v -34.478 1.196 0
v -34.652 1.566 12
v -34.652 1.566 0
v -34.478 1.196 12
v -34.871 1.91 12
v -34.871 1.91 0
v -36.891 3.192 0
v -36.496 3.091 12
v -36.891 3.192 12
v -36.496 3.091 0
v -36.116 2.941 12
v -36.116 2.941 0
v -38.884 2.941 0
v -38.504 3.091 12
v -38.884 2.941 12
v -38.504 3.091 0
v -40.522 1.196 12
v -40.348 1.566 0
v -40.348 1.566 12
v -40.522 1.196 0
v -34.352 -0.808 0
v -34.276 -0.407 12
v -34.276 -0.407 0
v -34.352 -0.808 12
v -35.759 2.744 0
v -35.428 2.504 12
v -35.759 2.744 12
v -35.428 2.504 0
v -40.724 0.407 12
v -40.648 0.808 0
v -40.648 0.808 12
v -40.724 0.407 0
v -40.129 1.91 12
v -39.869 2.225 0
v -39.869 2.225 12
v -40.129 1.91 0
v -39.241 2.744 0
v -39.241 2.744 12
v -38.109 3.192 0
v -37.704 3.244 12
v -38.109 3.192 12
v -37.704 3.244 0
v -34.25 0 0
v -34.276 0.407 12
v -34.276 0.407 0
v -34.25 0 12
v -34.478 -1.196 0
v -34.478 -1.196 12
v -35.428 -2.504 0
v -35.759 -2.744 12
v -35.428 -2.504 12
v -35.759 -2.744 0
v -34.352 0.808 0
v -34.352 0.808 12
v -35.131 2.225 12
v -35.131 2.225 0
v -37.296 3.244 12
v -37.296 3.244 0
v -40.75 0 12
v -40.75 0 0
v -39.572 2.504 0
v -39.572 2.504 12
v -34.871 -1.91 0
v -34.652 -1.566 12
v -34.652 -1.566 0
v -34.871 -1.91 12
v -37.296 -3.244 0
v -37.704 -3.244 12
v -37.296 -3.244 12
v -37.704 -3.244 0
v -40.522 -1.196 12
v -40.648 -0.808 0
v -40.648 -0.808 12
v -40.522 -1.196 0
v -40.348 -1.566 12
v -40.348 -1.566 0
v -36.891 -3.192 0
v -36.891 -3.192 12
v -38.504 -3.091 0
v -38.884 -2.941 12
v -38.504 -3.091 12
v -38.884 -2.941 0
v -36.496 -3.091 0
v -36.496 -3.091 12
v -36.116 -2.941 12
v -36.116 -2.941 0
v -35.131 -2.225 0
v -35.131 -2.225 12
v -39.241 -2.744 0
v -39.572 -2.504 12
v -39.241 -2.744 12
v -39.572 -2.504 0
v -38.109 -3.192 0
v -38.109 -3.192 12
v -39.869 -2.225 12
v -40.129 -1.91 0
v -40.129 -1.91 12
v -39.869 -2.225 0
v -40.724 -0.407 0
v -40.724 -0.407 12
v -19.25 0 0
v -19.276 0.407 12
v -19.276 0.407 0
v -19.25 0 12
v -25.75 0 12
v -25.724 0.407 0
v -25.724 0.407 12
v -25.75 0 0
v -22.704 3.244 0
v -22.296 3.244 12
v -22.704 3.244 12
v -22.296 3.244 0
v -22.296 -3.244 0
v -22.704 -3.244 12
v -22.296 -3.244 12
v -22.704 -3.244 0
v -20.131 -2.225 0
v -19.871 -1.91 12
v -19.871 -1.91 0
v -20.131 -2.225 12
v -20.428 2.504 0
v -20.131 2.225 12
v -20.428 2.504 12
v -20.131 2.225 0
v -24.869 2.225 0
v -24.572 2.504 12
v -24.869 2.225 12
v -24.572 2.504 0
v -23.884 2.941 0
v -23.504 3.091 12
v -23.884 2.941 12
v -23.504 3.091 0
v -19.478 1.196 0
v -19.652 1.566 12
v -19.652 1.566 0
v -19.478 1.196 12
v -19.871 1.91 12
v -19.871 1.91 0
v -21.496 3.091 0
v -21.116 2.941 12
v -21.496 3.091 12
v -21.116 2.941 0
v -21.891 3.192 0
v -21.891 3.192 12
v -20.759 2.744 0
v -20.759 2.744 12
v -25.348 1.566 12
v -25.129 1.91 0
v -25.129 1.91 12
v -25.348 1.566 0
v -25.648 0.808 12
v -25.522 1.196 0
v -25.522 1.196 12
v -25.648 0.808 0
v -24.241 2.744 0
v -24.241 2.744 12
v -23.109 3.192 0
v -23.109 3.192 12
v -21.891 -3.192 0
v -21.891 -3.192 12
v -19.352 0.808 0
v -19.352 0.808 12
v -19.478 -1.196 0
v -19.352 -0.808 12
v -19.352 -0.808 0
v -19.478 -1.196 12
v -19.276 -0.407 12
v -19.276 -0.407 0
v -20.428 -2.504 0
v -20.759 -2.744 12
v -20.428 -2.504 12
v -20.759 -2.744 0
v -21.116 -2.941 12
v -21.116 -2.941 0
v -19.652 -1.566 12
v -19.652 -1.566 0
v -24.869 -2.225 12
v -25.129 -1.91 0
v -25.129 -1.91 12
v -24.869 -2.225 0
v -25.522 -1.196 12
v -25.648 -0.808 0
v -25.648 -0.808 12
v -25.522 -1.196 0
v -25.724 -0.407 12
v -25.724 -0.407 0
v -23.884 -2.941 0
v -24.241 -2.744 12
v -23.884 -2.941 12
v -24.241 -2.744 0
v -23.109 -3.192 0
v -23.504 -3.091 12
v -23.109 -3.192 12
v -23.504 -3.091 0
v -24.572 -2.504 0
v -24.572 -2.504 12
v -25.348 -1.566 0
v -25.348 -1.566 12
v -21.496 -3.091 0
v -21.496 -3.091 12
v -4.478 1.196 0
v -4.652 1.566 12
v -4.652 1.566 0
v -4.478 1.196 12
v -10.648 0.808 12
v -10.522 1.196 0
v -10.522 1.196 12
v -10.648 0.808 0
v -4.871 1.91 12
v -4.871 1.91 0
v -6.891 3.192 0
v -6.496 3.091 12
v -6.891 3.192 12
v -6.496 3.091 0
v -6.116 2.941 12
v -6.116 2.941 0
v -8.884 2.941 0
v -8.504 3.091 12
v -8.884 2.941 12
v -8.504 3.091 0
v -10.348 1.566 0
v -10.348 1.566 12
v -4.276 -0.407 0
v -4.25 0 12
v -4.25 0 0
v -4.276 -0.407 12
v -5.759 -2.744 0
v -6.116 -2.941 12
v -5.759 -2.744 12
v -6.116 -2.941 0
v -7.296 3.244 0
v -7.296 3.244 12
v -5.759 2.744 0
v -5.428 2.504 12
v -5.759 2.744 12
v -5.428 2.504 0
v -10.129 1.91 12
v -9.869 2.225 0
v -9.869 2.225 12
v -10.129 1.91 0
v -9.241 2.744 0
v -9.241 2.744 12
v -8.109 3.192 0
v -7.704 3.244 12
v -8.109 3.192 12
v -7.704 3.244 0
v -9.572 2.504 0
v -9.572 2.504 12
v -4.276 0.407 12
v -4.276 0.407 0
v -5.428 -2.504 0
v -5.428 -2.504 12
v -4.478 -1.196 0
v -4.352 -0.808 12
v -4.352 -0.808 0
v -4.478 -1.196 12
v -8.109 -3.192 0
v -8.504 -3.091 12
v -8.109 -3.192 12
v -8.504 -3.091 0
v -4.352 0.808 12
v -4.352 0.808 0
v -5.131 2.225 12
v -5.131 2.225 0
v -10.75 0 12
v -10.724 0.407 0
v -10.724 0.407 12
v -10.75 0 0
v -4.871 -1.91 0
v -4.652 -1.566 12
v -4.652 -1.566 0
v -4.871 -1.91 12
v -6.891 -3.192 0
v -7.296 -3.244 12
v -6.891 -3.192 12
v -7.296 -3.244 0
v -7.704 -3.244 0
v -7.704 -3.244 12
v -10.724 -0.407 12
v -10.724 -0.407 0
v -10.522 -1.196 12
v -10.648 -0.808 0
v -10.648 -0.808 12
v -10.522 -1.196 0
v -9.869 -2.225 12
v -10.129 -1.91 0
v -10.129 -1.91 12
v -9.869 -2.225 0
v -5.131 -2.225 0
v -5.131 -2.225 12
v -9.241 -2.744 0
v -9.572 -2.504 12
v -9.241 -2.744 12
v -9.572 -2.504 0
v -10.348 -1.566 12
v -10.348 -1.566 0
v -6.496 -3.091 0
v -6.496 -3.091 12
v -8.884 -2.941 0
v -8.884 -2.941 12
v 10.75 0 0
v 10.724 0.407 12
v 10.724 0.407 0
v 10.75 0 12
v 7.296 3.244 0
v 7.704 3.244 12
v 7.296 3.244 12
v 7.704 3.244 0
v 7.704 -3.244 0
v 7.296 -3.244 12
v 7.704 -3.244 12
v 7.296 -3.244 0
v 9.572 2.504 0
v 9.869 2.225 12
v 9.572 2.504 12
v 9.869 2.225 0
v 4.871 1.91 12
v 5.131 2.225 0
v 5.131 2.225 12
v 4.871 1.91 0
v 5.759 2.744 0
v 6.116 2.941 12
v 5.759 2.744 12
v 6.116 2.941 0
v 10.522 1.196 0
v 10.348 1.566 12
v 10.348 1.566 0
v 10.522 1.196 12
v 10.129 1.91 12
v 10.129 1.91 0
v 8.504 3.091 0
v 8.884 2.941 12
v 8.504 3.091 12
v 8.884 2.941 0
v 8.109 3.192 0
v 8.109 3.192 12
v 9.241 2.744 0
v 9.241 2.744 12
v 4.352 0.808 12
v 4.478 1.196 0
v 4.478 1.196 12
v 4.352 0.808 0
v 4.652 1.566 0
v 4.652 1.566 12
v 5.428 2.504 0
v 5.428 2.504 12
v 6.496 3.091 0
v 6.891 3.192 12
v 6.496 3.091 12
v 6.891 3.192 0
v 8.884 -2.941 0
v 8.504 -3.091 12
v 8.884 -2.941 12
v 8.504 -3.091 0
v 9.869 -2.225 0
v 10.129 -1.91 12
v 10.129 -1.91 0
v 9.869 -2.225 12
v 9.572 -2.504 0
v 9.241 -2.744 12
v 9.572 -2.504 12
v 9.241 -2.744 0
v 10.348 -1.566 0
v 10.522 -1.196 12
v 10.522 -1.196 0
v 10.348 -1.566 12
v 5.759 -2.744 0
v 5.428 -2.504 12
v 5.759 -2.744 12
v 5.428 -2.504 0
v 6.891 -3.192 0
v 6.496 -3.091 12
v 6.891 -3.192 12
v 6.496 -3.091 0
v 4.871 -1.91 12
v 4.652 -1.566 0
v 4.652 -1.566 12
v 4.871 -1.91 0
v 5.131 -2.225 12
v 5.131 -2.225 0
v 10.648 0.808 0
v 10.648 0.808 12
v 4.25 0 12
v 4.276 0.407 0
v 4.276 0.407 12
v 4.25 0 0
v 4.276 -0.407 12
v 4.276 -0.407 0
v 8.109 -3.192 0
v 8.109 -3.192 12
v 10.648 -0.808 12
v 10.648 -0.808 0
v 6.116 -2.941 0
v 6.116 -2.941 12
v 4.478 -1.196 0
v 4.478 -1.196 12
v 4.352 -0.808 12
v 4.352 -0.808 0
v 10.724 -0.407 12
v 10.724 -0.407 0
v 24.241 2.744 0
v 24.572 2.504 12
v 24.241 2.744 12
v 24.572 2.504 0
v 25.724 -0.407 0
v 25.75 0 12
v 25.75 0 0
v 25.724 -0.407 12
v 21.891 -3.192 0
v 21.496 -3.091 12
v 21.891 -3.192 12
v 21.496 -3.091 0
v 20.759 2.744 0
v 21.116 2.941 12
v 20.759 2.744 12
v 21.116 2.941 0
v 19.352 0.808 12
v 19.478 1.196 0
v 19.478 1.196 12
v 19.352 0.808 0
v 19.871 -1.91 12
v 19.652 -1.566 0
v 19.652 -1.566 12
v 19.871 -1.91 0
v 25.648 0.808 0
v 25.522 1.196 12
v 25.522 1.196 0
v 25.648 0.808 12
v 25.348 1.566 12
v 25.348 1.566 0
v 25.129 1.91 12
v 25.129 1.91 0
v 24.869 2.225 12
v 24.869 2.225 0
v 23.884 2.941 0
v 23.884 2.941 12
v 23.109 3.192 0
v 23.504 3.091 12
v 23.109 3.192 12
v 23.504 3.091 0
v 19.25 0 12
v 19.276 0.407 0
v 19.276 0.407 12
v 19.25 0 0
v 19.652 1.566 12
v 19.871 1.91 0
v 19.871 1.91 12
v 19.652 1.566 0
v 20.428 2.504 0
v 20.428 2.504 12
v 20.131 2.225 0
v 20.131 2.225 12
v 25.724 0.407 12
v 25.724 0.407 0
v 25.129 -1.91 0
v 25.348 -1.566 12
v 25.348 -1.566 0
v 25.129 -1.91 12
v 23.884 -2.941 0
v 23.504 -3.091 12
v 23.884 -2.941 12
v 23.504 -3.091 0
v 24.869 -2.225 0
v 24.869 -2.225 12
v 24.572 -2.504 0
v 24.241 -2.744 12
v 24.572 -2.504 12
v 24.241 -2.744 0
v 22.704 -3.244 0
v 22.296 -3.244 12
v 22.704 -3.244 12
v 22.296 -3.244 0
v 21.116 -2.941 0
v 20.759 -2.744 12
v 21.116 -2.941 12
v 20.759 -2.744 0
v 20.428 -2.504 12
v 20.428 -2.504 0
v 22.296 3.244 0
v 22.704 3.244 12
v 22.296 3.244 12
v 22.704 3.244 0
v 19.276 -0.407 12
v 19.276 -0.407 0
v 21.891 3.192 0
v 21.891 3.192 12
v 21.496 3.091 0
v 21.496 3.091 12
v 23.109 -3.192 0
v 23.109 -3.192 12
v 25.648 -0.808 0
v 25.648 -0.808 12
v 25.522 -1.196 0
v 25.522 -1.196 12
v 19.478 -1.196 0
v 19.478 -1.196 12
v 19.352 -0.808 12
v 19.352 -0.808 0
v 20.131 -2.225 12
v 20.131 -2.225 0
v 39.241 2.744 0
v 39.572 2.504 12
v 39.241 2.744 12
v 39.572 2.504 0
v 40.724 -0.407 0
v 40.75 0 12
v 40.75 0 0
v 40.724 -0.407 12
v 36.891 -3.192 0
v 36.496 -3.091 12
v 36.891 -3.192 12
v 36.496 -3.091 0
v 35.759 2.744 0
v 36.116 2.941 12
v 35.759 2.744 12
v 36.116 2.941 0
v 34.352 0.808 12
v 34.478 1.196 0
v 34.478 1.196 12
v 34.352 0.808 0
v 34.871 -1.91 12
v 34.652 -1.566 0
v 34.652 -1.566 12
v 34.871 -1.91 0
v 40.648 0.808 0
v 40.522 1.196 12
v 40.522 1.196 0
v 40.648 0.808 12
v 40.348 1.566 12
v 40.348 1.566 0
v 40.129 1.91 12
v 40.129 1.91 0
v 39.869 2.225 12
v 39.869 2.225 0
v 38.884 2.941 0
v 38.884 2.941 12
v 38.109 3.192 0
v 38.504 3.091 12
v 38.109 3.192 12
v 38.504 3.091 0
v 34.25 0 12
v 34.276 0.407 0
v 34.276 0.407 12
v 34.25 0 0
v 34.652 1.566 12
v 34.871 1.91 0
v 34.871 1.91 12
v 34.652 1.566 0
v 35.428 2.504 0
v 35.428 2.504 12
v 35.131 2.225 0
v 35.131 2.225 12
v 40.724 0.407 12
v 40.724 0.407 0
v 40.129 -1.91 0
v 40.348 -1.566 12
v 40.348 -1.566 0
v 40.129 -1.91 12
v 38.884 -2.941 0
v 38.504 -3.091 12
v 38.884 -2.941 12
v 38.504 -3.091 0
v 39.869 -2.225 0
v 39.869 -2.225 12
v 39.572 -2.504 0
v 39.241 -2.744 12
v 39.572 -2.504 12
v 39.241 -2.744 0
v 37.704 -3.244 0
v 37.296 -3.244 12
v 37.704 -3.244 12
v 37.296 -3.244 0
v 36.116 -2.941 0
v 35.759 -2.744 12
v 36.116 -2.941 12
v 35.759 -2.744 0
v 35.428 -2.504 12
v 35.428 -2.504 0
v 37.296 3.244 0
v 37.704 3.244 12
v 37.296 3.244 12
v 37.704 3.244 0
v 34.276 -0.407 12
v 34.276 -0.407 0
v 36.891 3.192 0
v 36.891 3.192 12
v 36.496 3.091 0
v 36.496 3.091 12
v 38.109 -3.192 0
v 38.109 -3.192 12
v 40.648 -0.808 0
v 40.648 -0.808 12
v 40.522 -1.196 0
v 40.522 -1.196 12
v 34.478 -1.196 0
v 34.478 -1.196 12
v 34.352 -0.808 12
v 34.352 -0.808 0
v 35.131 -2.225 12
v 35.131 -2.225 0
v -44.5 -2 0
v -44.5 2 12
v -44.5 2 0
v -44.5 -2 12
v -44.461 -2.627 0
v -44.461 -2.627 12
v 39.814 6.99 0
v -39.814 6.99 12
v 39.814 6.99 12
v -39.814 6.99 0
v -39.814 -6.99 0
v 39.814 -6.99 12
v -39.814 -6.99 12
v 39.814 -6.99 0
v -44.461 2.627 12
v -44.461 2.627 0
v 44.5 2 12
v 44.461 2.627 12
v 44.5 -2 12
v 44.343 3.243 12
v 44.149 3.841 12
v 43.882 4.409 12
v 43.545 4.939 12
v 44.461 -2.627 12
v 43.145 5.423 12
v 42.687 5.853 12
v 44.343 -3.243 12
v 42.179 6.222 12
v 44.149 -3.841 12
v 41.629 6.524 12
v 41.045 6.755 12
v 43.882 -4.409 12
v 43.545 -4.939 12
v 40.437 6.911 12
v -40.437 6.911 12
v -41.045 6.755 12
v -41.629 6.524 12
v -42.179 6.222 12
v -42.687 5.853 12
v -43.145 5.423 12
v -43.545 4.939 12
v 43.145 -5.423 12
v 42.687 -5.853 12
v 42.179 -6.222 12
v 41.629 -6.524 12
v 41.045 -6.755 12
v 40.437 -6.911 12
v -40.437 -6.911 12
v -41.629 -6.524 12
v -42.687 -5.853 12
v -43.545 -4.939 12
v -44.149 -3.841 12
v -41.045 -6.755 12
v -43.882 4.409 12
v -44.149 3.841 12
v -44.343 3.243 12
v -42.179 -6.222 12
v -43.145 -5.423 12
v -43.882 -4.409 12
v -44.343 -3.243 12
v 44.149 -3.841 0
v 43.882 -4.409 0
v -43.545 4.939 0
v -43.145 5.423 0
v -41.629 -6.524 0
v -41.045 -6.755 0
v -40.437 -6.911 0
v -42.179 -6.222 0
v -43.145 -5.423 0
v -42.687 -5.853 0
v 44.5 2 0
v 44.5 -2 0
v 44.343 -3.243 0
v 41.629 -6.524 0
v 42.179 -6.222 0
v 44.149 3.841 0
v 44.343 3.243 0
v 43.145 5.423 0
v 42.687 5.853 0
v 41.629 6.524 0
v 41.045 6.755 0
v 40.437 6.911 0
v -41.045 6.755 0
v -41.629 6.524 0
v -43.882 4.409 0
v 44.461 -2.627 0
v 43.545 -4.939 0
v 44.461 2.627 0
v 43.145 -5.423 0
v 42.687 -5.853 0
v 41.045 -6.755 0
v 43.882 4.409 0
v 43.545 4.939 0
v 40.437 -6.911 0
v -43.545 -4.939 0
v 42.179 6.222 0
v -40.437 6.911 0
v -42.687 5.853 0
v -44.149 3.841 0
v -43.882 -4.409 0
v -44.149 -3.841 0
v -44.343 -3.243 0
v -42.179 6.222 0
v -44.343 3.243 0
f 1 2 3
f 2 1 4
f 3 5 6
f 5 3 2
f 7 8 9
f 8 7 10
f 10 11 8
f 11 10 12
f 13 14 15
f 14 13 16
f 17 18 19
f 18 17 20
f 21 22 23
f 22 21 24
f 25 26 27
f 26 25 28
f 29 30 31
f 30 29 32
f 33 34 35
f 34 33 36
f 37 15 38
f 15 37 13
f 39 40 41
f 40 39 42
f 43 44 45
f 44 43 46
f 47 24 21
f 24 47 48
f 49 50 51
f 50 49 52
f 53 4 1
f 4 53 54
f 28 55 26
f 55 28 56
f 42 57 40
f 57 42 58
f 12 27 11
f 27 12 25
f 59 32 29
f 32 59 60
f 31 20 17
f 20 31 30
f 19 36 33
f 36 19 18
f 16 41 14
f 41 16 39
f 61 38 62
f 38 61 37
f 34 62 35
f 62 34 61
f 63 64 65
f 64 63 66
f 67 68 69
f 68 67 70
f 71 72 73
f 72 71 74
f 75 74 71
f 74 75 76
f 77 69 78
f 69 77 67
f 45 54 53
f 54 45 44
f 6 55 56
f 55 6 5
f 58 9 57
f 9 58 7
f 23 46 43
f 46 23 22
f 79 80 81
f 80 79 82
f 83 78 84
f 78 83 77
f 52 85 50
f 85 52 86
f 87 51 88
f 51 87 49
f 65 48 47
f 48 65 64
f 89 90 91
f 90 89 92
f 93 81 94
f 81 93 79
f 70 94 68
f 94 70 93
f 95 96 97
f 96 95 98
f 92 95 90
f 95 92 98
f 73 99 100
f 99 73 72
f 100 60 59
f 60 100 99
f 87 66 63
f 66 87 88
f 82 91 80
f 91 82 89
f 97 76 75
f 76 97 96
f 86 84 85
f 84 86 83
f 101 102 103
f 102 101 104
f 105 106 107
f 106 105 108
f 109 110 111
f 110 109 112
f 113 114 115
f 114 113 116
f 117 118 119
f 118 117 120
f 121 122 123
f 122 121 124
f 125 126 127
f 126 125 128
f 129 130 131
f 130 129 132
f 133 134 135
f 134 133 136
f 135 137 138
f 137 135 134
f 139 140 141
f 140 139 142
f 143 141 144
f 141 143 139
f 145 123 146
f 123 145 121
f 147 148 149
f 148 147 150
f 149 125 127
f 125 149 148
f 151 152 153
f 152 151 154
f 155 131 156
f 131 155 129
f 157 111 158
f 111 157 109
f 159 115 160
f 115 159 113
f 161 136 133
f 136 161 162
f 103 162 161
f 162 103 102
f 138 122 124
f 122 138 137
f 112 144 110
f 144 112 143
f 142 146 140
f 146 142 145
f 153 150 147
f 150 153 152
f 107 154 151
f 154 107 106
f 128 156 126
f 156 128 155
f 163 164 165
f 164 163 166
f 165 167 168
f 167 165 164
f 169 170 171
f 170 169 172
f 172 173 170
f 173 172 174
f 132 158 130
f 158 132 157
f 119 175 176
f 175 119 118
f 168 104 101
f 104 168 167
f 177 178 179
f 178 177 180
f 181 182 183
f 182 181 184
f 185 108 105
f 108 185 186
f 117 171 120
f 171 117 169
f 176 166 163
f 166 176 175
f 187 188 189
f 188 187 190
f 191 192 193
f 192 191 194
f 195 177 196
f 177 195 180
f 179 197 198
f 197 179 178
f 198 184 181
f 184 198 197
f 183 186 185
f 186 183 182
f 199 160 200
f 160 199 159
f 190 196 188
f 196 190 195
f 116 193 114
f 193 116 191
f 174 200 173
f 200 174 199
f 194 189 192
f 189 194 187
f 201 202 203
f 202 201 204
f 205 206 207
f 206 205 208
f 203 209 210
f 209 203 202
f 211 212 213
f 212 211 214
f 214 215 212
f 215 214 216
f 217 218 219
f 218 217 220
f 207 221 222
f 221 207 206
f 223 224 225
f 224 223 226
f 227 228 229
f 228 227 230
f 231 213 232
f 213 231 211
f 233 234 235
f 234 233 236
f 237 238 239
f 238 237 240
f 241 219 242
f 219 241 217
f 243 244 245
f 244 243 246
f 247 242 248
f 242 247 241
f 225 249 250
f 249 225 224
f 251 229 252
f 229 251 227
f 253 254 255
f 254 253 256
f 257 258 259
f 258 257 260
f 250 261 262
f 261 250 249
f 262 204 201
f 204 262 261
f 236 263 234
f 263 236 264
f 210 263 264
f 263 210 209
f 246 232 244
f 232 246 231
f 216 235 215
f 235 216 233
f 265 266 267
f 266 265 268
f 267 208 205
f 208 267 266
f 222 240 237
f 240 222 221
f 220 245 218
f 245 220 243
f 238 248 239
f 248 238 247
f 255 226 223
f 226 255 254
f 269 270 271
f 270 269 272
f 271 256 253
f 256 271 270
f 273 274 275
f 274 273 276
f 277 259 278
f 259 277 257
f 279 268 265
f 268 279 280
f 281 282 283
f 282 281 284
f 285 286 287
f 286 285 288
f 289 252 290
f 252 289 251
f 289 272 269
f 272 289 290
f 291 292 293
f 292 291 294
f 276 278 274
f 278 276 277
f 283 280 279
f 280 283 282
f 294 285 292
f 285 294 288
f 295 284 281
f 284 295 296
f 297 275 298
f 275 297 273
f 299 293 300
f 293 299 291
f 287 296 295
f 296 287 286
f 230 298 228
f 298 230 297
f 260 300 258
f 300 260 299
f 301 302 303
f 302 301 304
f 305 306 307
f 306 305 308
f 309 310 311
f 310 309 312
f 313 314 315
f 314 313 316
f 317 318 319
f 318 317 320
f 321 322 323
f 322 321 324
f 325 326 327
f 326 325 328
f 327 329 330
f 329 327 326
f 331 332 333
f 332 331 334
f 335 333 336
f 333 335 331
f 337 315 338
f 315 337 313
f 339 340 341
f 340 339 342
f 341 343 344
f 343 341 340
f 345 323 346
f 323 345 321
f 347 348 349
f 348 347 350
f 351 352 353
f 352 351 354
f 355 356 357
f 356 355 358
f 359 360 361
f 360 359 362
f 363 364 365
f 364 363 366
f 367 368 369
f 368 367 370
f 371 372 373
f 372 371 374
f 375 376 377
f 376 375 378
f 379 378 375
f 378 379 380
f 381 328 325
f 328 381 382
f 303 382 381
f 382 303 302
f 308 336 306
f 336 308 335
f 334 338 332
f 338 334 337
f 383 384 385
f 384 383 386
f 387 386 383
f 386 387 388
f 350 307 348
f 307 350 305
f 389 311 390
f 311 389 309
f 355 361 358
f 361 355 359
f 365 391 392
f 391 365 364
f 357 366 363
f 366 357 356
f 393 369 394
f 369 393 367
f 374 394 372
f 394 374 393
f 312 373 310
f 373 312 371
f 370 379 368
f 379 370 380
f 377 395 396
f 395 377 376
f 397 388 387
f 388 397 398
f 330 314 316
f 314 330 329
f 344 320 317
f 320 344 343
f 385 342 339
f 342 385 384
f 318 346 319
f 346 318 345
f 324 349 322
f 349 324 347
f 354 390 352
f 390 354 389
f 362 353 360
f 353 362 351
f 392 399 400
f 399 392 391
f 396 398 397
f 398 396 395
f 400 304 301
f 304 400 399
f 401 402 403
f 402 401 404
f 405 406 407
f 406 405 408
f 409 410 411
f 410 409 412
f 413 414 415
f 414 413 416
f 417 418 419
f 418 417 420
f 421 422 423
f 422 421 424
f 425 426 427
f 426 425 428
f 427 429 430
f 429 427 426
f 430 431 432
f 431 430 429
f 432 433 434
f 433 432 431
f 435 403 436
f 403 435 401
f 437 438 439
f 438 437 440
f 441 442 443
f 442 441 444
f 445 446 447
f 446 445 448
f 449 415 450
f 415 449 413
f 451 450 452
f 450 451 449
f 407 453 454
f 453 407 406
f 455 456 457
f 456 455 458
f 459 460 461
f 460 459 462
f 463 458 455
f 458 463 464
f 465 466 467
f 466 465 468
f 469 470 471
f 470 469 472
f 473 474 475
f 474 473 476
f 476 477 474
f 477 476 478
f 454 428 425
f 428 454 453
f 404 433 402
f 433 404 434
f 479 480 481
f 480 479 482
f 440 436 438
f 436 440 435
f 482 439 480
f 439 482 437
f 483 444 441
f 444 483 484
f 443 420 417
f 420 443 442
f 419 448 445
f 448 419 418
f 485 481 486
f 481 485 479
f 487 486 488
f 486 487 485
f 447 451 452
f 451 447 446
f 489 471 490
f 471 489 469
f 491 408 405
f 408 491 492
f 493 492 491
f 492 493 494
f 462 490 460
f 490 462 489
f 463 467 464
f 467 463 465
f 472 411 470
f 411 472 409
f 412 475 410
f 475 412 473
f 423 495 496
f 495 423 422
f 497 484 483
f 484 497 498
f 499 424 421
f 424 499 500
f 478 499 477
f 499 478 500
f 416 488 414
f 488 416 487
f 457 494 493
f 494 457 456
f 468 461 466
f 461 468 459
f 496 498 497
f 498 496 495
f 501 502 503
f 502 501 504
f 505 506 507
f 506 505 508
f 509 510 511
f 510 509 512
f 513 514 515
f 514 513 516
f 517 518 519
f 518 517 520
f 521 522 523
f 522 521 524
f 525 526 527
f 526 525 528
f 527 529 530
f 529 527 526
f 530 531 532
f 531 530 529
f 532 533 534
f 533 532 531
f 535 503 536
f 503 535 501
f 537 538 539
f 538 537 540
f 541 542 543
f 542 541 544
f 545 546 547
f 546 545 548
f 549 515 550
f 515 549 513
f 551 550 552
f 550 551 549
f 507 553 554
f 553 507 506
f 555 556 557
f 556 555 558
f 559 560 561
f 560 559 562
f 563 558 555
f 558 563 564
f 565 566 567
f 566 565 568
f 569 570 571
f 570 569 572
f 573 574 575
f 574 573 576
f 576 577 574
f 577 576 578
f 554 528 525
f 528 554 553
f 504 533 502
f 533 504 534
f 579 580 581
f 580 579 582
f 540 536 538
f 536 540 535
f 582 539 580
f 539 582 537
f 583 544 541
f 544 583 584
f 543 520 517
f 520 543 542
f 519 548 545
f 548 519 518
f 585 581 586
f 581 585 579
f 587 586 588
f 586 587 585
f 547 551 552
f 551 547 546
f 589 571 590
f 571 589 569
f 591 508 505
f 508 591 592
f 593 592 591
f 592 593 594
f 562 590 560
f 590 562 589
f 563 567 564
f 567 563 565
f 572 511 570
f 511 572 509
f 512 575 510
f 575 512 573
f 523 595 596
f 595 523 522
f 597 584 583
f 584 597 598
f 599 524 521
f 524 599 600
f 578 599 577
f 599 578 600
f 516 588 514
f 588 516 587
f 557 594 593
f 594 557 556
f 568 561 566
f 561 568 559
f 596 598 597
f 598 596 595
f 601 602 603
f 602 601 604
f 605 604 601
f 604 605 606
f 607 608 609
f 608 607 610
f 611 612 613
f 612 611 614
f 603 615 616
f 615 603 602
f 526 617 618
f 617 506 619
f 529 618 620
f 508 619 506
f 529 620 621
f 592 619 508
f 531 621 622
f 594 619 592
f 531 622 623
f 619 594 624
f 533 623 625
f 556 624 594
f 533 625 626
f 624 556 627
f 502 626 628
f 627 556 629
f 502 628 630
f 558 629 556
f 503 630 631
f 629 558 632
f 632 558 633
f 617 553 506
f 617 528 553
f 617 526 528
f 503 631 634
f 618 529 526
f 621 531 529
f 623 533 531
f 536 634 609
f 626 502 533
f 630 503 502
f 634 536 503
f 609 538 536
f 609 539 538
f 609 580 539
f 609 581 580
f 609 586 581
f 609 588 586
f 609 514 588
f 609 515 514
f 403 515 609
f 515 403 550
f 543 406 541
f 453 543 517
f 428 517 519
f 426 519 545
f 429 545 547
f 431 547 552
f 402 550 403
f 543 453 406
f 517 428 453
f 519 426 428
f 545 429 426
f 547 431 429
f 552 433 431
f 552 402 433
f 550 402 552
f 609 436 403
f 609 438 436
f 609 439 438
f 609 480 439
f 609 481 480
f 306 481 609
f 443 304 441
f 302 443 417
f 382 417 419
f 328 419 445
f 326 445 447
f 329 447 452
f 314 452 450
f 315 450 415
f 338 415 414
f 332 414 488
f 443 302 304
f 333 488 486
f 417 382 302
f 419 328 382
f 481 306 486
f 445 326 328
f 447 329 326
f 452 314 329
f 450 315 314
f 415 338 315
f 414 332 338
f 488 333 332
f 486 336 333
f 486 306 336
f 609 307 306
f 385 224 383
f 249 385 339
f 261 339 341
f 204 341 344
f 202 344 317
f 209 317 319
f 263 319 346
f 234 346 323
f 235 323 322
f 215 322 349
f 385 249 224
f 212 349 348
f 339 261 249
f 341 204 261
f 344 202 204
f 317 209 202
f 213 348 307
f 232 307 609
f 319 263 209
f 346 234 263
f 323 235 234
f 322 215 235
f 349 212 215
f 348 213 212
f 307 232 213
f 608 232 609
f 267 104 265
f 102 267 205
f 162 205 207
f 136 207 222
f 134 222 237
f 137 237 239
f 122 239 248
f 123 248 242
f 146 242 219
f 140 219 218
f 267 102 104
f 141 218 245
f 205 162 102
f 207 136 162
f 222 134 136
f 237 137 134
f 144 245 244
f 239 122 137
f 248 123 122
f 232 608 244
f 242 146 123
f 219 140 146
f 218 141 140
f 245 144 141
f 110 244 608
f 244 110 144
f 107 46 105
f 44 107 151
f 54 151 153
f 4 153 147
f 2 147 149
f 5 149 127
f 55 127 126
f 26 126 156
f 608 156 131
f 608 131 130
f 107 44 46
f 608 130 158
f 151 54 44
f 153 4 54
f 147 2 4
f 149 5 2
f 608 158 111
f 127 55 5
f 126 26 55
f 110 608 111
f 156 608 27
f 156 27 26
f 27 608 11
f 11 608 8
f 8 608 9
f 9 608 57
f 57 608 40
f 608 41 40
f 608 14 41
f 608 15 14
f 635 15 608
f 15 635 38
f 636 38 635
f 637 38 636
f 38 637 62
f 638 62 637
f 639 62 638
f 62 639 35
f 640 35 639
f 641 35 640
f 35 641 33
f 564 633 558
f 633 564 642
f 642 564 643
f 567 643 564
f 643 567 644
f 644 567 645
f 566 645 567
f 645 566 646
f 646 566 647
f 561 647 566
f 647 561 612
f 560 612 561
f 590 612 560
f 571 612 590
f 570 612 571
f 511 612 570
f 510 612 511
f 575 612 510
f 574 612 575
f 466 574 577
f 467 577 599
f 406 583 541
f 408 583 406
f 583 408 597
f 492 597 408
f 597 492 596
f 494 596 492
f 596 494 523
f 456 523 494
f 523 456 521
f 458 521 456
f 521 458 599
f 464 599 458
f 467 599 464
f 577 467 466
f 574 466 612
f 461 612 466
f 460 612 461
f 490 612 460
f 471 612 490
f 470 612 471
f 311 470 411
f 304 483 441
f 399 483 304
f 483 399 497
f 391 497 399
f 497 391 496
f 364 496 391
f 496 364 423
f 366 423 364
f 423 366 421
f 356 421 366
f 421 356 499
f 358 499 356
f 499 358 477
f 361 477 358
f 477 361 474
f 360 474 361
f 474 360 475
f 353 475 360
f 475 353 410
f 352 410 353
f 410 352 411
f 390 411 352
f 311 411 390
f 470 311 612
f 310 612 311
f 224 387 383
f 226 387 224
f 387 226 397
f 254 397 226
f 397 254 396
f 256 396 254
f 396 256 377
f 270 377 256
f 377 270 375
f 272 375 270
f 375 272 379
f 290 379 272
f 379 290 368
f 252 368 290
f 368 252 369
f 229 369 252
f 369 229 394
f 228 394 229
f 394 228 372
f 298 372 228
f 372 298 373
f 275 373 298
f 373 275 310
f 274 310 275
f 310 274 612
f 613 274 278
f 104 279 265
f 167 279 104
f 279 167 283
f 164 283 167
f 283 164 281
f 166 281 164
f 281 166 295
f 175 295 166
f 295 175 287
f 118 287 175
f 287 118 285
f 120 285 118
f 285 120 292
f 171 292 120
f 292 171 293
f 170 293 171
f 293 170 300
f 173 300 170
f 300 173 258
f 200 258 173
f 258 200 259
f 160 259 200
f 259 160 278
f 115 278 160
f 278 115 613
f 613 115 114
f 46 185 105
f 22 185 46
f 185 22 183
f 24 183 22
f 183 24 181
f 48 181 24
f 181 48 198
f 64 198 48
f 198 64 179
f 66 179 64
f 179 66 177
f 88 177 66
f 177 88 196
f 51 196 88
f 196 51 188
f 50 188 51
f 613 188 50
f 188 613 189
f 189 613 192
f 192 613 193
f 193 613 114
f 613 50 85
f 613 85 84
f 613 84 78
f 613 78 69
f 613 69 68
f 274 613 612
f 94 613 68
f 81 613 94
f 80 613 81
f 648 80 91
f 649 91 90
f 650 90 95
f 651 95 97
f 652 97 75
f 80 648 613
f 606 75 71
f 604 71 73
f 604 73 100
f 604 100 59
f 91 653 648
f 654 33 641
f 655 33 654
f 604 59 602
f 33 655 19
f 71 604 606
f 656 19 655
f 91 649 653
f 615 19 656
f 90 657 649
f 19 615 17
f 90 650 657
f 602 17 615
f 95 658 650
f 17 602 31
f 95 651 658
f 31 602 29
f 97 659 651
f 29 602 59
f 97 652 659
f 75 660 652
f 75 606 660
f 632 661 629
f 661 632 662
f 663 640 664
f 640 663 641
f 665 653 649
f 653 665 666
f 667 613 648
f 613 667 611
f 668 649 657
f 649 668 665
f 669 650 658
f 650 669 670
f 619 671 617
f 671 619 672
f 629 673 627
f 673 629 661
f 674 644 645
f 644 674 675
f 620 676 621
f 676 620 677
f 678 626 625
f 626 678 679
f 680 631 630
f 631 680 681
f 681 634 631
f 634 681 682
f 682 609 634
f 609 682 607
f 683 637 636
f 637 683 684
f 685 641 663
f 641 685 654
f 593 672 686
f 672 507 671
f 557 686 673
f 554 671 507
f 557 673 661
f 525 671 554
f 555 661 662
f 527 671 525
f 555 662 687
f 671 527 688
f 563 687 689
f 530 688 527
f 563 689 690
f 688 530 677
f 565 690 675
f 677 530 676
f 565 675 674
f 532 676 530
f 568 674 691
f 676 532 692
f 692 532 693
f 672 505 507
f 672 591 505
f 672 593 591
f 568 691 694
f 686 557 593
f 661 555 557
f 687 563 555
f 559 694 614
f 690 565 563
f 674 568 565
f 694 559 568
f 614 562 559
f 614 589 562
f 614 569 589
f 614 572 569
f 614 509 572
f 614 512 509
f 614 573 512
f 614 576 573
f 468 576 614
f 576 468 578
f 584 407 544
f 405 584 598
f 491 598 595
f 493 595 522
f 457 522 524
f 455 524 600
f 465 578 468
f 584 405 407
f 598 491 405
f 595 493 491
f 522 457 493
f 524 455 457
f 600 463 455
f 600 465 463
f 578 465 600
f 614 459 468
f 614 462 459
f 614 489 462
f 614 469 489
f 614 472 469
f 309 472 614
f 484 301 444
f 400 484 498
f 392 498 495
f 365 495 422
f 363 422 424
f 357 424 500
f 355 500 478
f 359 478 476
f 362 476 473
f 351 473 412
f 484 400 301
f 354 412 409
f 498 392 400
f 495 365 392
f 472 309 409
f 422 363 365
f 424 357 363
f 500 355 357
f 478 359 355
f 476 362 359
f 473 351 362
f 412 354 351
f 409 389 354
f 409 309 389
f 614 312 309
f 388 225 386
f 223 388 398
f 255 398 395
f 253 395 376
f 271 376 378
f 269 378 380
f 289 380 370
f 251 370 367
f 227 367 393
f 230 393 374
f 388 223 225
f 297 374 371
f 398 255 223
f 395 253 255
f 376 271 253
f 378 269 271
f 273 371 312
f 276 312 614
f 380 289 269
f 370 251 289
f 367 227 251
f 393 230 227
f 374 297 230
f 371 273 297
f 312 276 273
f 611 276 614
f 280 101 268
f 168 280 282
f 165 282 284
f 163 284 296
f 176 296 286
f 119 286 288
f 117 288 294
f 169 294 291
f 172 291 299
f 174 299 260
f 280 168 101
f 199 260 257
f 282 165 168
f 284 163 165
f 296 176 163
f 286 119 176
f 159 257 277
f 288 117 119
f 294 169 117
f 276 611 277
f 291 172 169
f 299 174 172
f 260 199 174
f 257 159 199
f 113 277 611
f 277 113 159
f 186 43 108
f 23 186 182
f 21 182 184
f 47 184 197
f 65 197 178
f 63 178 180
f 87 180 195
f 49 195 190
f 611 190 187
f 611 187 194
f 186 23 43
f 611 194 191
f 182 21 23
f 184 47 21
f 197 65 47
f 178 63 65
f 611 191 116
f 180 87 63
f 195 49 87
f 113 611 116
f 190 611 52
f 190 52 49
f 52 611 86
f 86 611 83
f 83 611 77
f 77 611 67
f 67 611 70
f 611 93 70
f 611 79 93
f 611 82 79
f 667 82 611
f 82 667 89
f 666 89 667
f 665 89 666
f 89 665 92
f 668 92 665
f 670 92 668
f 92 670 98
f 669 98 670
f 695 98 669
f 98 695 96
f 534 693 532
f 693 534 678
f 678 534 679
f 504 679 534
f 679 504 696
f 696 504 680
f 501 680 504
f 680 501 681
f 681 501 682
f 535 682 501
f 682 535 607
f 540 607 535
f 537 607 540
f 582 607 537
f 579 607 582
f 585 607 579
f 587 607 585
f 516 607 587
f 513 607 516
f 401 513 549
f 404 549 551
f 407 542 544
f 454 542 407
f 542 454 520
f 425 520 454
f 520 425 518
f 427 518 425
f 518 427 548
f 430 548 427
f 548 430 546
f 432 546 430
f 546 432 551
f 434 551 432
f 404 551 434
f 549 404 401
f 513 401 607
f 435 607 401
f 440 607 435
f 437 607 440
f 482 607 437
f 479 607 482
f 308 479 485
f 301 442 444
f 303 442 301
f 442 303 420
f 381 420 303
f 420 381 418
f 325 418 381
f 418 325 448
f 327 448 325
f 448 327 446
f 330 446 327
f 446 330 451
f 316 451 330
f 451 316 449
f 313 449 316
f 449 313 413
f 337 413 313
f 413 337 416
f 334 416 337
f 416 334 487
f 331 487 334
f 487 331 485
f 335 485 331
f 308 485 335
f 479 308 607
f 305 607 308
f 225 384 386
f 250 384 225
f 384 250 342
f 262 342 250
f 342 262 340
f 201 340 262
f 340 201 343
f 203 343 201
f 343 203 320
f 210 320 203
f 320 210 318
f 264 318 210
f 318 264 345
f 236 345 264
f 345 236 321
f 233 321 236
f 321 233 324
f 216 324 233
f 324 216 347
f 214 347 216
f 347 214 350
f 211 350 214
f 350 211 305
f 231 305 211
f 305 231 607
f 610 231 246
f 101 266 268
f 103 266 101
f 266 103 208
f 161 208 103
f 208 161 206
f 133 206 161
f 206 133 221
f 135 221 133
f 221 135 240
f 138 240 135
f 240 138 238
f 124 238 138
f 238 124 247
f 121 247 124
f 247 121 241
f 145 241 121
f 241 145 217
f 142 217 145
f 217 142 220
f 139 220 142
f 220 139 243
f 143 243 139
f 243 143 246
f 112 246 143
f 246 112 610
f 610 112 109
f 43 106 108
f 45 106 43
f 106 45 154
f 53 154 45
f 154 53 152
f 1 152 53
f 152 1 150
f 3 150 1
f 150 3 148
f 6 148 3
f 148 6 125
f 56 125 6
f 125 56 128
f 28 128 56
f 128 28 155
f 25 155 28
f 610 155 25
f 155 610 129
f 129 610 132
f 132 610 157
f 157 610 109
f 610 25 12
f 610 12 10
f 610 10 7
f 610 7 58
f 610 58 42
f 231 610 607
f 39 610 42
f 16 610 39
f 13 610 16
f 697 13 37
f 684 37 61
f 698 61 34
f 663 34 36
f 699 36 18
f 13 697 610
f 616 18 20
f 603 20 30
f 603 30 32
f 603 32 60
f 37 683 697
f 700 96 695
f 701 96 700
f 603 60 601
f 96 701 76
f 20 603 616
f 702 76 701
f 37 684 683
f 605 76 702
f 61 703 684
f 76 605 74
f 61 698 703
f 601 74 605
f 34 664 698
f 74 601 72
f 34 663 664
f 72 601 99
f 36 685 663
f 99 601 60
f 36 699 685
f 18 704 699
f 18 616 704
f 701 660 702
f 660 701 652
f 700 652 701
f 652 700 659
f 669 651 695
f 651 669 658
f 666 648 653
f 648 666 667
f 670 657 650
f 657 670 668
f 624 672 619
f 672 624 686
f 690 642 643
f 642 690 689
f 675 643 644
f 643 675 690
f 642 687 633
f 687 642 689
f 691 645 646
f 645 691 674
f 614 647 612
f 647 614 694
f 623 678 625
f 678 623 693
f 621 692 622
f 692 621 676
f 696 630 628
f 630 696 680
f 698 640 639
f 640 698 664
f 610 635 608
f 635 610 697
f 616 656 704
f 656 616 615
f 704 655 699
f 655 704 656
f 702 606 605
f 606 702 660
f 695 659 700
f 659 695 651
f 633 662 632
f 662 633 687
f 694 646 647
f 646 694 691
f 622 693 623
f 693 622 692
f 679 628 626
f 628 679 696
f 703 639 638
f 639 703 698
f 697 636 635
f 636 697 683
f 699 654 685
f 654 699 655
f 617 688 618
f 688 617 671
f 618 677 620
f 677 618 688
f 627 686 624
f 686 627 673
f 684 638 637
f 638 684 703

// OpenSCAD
$fn = 50;


difference() {
	union() {
		hull() {
			translate(v = [-39.5000000000, 2.0000000000, 0]) {
				cylinder(h = 12, r = 5);
			}
			translate(v = [39.5000000000, 2.0000000000, 0]) {
				cylinder(h = 12, r = 5);
			}
			translate(v = [-39.5000000000, -2.0000000000, 0]) {
				cylinder(h = 12, r = 5);
			}
			translate(v = [39.5000000000, -2.0000000000, 0]) {
				cylinder(h = 12, r = 5);
			}
		}
	}
	union() {
		translate(v = [-37.5000000000, 0.0000000000, 0]) {
			translate(v = [0, 0, -100]) {
				cylinder(h = 200, r = 3.2500000000);
			}
		}
		translate(v = [-22.5000000000, 0.0000000000, 0]) {
			translate(v = [0, 0, -100]) {
				cylinder(h = 200, r = 3.2500000000);
			}
		}
		translate(v = [-7.5000000000, 0.0000000000, 0]) {
			translate(v = [0, 0, -100]) {
				cylinder(h = 200, r = 3.2500000000);
			}
		}
		translate(v = [7.5000000000, 0.0000000000, 0]) {
			translate(v = [0, 0, -100]) {
				cylinder(h = 200, r = 3.2500000000);
			}
		}
		translate(v = [22.5000000000, 0.0000000000, 0]) {
			translate(v = [0, 0, -100]) {
				cylinder(h = 200, r = 3.2500000000);
			}
		}
		translate(v = [37.5000000000, 0.0000000000, 0]) {
			translate(v = [0, 0, -100]) {
				cylinder(h = 200, r = 3.2500000000);
			}
		}
	}
}
